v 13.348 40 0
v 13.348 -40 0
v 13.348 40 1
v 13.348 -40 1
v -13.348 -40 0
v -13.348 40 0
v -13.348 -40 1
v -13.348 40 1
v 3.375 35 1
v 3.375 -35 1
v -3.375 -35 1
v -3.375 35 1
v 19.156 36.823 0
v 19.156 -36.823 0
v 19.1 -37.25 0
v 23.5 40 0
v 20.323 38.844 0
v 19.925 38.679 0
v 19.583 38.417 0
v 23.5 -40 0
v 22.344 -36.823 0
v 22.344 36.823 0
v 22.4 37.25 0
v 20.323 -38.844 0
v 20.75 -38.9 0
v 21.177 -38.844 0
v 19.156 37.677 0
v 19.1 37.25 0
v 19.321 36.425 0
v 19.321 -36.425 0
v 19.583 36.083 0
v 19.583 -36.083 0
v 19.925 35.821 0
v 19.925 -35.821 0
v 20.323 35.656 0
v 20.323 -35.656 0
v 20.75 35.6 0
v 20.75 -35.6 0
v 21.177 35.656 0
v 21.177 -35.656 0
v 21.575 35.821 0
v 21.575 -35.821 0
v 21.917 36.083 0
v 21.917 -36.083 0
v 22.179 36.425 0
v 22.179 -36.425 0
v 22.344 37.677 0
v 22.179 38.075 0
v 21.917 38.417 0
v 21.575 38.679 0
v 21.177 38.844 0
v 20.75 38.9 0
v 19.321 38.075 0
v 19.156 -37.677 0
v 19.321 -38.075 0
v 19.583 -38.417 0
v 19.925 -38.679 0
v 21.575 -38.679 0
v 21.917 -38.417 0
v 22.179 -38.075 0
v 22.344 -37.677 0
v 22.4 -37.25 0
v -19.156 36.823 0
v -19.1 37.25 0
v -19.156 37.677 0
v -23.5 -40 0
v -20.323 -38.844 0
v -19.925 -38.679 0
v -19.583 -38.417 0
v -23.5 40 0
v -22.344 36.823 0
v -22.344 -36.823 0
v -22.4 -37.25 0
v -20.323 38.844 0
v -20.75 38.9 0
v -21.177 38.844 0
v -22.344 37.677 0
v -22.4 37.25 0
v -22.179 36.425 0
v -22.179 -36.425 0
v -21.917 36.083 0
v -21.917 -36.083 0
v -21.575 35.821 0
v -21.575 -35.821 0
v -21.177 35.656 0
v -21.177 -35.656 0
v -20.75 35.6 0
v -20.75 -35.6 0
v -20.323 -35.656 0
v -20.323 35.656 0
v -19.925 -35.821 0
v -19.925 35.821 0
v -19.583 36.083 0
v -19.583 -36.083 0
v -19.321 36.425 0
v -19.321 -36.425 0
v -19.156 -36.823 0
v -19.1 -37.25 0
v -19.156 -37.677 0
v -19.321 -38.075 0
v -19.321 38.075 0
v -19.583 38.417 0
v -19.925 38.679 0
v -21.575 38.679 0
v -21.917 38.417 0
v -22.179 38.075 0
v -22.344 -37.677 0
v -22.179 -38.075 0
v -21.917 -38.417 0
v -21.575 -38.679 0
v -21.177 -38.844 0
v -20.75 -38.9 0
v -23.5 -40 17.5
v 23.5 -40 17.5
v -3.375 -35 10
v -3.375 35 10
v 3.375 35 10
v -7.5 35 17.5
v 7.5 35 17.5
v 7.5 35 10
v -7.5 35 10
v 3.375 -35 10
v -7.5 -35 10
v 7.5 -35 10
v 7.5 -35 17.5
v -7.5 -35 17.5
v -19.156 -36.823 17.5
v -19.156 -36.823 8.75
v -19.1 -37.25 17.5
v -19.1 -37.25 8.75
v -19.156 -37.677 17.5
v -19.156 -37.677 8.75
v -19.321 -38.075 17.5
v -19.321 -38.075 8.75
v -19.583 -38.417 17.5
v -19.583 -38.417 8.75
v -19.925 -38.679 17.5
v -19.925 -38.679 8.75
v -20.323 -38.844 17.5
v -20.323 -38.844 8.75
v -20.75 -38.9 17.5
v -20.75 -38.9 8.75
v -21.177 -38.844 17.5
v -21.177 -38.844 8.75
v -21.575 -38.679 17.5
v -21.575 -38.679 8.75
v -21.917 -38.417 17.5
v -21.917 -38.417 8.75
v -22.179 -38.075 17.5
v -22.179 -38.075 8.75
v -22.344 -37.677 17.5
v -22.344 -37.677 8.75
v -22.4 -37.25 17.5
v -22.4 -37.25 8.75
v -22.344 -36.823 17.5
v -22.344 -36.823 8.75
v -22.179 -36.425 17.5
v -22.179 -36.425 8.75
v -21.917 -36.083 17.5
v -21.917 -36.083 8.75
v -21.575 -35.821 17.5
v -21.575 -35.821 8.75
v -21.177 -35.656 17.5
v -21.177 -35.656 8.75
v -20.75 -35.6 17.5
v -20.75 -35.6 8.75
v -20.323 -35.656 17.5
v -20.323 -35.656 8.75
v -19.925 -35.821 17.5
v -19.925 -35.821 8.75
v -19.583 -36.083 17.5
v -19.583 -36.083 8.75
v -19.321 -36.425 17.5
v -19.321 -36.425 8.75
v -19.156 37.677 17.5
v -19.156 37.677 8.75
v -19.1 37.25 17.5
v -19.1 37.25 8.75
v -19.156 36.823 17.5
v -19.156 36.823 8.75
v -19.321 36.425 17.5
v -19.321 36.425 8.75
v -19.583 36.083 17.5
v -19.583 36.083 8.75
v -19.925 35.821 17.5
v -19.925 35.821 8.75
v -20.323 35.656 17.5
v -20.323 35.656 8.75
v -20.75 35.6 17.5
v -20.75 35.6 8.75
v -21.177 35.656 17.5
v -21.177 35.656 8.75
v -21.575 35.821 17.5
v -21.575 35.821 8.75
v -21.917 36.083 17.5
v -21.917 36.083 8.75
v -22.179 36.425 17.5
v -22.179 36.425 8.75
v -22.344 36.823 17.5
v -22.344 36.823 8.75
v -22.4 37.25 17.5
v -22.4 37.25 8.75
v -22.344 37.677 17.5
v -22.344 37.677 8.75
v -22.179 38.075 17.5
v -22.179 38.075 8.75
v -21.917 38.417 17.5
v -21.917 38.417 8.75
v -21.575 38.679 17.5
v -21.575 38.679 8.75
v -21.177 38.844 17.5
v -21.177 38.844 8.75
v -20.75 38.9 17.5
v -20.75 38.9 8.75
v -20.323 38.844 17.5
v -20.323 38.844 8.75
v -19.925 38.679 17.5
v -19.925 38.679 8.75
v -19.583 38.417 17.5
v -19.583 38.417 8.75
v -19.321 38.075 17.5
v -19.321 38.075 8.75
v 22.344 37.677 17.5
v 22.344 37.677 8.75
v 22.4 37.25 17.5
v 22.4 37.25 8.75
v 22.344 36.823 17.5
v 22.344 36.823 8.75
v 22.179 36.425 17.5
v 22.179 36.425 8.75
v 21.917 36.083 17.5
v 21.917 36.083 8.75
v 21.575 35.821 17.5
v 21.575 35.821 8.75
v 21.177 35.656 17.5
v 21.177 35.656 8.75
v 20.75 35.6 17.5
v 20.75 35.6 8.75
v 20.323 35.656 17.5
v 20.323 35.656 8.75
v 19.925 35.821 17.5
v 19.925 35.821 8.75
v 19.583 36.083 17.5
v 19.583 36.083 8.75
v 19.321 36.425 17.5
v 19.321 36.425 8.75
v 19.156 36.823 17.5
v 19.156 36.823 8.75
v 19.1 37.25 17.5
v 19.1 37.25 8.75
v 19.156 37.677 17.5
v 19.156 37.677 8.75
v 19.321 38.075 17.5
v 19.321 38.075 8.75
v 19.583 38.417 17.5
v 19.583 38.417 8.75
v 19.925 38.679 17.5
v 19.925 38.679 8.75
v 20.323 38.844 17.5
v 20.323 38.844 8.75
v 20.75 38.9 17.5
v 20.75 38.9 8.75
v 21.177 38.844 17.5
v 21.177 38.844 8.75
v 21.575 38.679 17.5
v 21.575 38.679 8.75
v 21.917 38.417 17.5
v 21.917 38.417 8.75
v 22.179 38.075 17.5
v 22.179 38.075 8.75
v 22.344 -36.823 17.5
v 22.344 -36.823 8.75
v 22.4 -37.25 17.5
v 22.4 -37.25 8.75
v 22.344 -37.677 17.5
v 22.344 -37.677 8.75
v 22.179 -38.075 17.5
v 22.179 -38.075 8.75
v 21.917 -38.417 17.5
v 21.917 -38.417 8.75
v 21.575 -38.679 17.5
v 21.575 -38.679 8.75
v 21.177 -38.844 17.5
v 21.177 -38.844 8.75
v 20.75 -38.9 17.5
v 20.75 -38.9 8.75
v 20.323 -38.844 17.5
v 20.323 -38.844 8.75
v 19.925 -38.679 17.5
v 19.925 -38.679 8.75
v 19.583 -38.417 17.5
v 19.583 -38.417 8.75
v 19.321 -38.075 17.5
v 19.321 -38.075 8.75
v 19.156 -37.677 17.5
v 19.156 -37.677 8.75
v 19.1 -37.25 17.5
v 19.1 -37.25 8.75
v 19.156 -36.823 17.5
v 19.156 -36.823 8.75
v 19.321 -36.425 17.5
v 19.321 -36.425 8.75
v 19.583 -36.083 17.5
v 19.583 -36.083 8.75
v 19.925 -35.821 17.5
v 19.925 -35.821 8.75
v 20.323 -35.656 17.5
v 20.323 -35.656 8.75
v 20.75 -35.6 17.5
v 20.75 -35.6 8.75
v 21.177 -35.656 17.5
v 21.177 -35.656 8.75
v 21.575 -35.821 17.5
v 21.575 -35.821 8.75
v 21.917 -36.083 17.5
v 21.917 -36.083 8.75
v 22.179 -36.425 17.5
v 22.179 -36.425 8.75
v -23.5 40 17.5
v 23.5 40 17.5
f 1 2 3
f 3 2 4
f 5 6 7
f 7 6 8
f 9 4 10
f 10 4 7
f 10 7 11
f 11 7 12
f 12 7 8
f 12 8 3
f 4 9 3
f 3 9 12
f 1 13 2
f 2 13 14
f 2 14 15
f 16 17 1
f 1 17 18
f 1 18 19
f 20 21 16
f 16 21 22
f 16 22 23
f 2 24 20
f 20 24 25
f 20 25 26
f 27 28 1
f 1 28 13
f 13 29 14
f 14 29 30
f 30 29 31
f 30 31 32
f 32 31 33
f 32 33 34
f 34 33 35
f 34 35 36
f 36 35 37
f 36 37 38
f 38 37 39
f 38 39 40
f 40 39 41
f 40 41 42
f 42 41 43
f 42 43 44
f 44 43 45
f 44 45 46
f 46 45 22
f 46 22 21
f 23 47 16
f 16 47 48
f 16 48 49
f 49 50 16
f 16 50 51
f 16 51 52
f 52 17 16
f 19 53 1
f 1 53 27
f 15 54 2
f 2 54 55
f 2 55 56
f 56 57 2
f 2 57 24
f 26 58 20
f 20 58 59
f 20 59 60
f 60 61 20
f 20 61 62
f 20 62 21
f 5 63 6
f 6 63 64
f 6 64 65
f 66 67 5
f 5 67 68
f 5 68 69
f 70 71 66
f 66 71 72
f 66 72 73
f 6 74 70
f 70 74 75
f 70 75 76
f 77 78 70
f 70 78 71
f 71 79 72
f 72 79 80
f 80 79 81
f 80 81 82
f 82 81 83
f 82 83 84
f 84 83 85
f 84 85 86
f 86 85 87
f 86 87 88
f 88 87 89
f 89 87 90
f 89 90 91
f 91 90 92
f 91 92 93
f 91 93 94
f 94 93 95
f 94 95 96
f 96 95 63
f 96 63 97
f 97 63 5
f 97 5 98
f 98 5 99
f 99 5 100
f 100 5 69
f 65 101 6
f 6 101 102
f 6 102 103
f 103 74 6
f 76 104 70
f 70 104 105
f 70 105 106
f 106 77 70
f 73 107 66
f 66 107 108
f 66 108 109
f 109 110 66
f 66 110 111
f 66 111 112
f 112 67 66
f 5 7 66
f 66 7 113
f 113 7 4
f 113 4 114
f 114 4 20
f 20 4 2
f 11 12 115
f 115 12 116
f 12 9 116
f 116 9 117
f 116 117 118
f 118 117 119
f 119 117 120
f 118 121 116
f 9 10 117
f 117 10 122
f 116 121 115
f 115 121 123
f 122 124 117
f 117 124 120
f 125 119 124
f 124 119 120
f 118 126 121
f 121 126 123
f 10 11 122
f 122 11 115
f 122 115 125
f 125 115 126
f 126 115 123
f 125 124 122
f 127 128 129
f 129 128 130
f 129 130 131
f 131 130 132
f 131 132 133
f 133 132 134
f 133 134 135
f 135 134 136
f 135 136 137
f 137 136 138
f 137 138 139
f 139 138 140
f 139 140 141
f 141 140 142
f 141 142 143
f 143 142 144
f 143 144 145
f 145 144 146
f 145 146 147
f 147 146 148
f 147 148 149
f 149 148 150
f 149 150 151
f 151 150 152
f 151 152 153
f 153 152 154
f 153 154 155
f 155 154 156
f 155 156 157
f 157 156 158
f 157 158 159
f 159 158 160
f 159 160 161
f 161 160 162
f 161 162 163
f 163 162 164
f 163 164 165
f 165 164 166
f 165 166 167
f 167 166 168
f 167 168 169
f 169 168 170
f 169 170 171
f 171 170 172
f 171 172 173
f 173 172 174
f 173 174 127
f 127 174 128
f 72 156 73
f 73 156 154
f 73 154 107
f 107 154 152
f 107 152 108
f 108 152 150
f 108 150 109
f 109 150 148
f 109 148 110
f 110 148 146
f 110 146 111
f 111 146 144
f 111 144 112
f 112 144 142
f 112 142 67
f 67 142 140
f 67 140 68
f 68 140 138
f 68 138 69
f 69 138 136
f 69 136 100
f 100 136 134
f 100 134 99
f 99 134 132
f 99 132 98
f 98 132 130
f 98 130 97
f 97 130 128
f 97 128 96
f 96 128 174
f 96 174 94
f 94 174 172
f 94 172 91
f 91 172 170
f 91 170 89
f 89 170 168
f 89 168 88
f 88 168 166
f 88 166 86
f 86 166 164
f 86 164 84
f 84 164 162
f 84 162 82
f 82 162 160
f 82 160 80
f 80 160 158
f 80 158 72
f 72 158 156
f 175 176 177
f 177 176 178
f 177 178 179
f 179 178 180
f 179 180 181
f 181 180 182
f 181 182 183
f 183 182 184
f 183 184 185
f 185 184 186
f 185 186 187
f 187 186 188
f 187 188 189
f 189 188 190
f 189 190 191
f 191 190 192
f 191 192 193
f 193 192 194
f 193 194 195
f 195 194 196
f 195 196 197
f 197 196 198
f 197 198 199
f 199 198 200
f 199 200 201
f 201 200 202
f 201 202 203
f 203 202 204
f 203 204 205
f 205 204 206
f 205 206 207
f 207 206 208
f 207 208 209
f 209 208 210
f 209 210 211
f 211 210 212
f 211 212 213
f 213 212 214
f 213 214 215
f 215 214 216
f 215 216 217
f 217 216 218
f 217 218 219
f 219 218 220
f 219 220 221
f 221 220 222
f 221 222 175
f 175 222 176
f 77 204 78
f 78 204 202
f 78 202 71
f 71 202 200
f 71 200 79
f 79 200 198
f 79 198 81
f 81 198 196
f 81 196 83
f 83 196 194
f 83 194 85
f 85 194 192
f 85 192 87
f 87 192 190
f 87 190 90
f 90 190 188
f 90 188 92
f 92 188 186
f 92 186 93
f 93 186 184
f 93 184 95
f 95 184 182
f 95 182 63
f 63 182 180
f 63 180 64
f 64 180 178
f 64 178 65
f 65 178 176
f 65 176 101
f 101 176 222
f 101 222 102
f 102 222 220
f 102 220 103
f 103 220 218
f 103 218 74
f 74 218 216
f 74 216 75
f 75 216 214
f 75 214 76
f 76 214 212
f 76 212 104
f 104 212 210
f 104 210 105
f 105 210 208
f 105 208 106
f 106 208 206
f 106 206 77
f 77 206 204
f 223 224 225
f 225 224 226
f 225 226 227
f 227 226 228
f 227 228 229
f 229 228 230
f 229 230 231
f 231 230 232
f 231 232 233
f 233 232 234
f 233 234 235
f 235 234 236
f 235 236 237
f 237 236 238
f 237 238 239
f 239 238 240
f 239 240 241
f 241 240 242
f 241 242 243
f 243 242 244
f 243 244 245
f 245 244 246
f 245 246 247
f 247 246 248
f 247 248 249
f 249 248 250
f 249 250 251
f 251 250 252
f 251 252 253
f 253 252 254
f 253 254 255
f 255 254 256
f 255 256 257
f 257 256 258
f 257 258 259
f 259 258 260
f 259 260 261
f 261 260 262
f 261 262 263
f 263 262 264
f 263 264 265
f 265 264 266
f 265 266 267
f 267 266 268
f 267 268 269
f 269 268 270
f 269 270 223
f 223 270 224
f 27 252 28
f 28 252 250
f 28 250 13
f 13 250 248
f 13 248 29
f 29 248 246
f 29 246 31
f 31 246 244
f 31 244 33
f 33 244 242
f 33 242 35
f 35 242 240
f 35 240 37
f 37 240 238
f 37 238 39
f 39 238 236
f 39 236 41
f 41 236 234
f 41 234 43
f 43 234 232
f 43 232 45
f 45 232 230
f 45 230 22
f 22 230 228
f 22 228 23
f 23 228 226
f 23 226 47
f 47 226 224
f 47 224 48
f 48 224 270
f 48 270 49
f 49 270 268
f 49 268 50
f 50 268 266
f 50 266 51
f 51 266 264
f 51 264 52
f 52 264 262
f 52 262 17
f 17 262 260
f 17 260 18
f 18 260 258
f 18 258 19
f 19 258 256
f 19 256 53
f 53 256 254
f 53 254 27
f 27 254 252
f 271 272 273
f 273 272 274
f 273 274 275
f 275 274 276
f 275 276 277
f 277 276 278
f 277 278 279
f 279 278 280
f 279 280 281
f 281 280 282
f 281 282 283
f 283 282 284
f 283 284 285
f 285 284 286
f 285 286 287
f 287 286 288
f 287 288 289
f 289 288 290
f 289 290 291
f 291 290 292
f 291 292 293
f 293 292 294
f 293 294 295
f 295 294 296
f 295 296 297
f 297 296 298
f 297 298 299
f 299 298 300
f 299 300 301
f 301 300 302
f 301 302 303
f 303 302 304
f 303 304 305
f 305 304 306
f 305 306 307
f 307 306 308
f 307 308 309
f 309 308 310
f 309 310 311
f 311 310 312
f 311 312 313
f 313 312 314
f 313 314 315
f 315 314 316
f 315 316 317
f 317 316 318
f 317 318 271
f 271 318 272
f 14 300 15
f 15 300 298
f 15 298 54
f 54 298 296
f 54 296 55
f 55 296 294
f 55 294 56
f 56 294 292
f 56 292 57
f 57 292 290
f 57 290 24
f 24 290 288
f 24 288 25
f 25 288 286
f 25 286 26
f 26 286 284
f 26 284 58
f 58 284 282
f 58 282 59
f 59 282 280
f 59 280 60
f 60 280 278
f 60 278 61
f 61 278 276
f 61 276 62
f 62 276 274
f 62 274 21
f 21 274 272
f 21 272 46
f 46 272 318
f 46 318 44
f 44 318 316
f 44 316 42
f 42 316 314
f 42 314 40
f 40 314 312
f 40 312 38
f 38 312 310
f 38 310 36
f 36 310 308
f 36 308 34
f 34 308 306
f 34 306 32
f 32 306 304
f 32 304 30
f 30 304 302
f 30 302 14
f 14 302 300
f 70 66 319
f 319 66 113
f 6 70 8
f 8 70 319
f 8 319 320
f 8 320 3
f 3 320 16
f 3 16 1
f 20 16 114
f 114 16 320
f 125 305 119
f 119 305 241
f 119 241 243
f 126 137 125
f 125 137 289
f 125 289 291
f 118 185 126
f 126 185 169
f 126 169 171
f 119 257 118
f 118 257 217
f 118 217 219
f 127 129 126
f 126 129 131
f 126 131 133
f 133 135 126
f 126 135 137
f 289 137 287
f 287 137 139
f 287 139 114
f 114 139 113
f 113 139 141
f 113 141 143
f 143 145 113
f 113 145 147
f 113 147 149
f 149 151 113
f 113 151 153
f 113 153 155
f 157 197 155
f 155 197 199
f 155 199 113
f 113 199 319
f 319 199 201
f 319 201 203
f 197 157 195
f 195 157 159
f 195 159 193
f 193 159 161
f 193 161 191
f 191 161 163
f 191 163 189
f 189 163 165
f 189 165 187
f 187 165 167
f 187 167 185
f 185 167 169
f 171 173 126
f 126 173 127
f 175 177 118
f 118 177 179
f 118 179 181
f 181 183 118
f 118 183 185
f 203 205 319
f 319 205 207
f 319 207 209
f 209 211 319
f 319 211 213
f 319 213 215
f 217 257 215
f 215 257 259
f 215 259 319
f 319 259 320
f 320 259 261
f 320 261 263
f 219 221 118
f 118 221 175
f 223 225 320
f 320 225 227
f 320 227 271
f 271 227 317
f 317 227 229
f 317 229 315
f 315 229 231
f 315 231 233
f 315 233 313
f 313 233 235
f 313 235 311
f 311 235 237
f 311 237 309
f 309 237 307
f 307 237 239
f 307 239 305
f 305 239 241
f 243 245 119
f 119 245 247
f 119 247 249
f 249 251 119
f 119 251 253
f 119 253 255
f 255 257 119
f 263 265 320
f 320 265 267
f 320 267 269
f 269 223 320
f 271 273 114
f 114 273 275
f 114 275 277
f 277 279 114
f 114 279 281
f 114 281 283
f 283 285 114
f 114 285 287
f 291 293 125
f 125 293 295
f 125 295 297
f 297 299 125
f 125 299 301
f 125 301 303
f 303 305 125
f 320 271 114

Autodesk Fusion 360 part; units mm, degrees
sketch "Sketch1" plane through (0, 0, 0) normal (0, 0, 1) x (1, 0, 0)
  line L0 (-23.5, 40) -> (23.5, 40)
  line L1 (23.5, 40) -> (23.5, -40)
  line L2 (23.5, -40) -> (-23.5, -40)
  line L3 (-23.5, -40) -> (-23.5, 40)
  line L4 (0, 40) -> (0, 0)
  line L5 (0, 0) -> (23.5, 0)
  line L6 (-20.75, 37.25) -> (-23.5, 37.25)
  line L7 (-20.75, -37.25) -> (-23.5, -37.25)
  line L8 (20.75, -37.25) -> (23.5, -37.25)
  line L9 (20.75, 37.25) -> (23.5, 37.25)
  line L10 (-20.75, 37.25) -> (-20.75, 40)
  line L11 (20.75, 37.25) -> (20.75, 40)
  line L12 (20.75, -37.25) -> (20.75, -40)
  line L13 (-20.75, -37.25) -> (-20.75, -40)
  point P0 (-20.75, 37.25)
  point P1 (20.75, 37.25)
  point P2 (20.75, -37.25)
  point P3 (-20.75, -37.25)
  dimension "d2" = 47
  dimension "d3" = 80
  dimension "d4" = 2.75
extrude "Extrude1" add sketch "Sketch1" along normal blind 17.5
hole "Hole1" at (-20.75, 37.25, 0) at (20.75, 37.25, 0) at (-20.75, -37.25, 0) at (20.75, -37.25, 0) direction (0, 0, 1) diameter 3.3 end through all
sketch "Sketch2" plane through (0, 0, 17.5) normal (0, 0, 1) x (-1, 0, 0)
  circle A0 centre (20.75, 37.25) radius 1.65
  circle A1 centre (20.75, -37.25) radius 1.65
  circle A2 centre (-20.75, -37.25) radius 1.65
  circle A3 centre (-20.75, 37.25) radius 1.65
  line L0 (23.5, 40) -> (-23.5, 40)
  line L1 (-23.5, 40) -> (-23.5, -40)
  line L2 (-23.5, -40) -> (23.5, -40)
  line L3 (23.5, -40) -> (23.5, 40)
  line L4 (0, 0) -> (-7.5, 0)
  line L5 (0, 0) -> (0, -35)
  line L6 (7.5, -35) -> (-7.5, -35)
  line L7 (-7.5, -35) -> (-7.5, 35)
  line L8 (-7.5, 35) -> (7.5, 35)
  line L9 (7.5, 35) -> (7.5, -35)
  dimension "d12" = 15
  dimension "d13" = 70
extrude "Extrude2" cut sketch "Sketch2" against normal blind 7.5 contours L4 L5 L6 L7 | L4 L5 L6 L7 L8 L9
sketch "Sketch3" plane through (0, 0, 10) normal (0, 0, 1) x (-1, 0, 0)
  line L0 (7.5, 35) -> (-7.5, 35)
  line L1 (-7.5, 35) -> (-7.5, -35)
  line L2 (-7.5, -35) -> (7.5, -35)
  line L3 (7.5, -35) -> (7.5, 35)
  line L4 (0, 0) -> (0, -35)
  line L5 (0, 0) -> (-3.375, 0)
  line L6 (3.375, -35) -> (-3.375, -35)
  line L7 (-3.375, -35) -> (-3.375, 35)
  line L8 (-3.375, 35) -> (3.375, 35)
  line L9 (3.375, 35) -> (3.375, -35)
  dimension "d16" = 70
  dimension "d17" = 6.75
extrude "Extrude3" cut sketch "Sketch3" against normal through all contours L0 L2 L4 L5 L6 L7 L8 L9 | L2 L4 L5 L6 L7
sketch "Sketch4" plane through (0, 0, 0) normal (0, 0, 1) x (1, 0, 0)
  line L0 (0, 0) -> (13.3476, 0)
  line L1 (0, 0) -> (0, -40)
  line L2 (-13.3476, -40) -> (13.3476, -40)
  line L3 (13.3476, -40) -> (13.3476, 40)
  line L4 (13.3476, 40) -> (-13.3476, 40)
  line L5 (-13.3476, 40) -> (-13.3476, -40)
extrude "Extrude4" cut sketch "Sketch4" along normal blind 1
